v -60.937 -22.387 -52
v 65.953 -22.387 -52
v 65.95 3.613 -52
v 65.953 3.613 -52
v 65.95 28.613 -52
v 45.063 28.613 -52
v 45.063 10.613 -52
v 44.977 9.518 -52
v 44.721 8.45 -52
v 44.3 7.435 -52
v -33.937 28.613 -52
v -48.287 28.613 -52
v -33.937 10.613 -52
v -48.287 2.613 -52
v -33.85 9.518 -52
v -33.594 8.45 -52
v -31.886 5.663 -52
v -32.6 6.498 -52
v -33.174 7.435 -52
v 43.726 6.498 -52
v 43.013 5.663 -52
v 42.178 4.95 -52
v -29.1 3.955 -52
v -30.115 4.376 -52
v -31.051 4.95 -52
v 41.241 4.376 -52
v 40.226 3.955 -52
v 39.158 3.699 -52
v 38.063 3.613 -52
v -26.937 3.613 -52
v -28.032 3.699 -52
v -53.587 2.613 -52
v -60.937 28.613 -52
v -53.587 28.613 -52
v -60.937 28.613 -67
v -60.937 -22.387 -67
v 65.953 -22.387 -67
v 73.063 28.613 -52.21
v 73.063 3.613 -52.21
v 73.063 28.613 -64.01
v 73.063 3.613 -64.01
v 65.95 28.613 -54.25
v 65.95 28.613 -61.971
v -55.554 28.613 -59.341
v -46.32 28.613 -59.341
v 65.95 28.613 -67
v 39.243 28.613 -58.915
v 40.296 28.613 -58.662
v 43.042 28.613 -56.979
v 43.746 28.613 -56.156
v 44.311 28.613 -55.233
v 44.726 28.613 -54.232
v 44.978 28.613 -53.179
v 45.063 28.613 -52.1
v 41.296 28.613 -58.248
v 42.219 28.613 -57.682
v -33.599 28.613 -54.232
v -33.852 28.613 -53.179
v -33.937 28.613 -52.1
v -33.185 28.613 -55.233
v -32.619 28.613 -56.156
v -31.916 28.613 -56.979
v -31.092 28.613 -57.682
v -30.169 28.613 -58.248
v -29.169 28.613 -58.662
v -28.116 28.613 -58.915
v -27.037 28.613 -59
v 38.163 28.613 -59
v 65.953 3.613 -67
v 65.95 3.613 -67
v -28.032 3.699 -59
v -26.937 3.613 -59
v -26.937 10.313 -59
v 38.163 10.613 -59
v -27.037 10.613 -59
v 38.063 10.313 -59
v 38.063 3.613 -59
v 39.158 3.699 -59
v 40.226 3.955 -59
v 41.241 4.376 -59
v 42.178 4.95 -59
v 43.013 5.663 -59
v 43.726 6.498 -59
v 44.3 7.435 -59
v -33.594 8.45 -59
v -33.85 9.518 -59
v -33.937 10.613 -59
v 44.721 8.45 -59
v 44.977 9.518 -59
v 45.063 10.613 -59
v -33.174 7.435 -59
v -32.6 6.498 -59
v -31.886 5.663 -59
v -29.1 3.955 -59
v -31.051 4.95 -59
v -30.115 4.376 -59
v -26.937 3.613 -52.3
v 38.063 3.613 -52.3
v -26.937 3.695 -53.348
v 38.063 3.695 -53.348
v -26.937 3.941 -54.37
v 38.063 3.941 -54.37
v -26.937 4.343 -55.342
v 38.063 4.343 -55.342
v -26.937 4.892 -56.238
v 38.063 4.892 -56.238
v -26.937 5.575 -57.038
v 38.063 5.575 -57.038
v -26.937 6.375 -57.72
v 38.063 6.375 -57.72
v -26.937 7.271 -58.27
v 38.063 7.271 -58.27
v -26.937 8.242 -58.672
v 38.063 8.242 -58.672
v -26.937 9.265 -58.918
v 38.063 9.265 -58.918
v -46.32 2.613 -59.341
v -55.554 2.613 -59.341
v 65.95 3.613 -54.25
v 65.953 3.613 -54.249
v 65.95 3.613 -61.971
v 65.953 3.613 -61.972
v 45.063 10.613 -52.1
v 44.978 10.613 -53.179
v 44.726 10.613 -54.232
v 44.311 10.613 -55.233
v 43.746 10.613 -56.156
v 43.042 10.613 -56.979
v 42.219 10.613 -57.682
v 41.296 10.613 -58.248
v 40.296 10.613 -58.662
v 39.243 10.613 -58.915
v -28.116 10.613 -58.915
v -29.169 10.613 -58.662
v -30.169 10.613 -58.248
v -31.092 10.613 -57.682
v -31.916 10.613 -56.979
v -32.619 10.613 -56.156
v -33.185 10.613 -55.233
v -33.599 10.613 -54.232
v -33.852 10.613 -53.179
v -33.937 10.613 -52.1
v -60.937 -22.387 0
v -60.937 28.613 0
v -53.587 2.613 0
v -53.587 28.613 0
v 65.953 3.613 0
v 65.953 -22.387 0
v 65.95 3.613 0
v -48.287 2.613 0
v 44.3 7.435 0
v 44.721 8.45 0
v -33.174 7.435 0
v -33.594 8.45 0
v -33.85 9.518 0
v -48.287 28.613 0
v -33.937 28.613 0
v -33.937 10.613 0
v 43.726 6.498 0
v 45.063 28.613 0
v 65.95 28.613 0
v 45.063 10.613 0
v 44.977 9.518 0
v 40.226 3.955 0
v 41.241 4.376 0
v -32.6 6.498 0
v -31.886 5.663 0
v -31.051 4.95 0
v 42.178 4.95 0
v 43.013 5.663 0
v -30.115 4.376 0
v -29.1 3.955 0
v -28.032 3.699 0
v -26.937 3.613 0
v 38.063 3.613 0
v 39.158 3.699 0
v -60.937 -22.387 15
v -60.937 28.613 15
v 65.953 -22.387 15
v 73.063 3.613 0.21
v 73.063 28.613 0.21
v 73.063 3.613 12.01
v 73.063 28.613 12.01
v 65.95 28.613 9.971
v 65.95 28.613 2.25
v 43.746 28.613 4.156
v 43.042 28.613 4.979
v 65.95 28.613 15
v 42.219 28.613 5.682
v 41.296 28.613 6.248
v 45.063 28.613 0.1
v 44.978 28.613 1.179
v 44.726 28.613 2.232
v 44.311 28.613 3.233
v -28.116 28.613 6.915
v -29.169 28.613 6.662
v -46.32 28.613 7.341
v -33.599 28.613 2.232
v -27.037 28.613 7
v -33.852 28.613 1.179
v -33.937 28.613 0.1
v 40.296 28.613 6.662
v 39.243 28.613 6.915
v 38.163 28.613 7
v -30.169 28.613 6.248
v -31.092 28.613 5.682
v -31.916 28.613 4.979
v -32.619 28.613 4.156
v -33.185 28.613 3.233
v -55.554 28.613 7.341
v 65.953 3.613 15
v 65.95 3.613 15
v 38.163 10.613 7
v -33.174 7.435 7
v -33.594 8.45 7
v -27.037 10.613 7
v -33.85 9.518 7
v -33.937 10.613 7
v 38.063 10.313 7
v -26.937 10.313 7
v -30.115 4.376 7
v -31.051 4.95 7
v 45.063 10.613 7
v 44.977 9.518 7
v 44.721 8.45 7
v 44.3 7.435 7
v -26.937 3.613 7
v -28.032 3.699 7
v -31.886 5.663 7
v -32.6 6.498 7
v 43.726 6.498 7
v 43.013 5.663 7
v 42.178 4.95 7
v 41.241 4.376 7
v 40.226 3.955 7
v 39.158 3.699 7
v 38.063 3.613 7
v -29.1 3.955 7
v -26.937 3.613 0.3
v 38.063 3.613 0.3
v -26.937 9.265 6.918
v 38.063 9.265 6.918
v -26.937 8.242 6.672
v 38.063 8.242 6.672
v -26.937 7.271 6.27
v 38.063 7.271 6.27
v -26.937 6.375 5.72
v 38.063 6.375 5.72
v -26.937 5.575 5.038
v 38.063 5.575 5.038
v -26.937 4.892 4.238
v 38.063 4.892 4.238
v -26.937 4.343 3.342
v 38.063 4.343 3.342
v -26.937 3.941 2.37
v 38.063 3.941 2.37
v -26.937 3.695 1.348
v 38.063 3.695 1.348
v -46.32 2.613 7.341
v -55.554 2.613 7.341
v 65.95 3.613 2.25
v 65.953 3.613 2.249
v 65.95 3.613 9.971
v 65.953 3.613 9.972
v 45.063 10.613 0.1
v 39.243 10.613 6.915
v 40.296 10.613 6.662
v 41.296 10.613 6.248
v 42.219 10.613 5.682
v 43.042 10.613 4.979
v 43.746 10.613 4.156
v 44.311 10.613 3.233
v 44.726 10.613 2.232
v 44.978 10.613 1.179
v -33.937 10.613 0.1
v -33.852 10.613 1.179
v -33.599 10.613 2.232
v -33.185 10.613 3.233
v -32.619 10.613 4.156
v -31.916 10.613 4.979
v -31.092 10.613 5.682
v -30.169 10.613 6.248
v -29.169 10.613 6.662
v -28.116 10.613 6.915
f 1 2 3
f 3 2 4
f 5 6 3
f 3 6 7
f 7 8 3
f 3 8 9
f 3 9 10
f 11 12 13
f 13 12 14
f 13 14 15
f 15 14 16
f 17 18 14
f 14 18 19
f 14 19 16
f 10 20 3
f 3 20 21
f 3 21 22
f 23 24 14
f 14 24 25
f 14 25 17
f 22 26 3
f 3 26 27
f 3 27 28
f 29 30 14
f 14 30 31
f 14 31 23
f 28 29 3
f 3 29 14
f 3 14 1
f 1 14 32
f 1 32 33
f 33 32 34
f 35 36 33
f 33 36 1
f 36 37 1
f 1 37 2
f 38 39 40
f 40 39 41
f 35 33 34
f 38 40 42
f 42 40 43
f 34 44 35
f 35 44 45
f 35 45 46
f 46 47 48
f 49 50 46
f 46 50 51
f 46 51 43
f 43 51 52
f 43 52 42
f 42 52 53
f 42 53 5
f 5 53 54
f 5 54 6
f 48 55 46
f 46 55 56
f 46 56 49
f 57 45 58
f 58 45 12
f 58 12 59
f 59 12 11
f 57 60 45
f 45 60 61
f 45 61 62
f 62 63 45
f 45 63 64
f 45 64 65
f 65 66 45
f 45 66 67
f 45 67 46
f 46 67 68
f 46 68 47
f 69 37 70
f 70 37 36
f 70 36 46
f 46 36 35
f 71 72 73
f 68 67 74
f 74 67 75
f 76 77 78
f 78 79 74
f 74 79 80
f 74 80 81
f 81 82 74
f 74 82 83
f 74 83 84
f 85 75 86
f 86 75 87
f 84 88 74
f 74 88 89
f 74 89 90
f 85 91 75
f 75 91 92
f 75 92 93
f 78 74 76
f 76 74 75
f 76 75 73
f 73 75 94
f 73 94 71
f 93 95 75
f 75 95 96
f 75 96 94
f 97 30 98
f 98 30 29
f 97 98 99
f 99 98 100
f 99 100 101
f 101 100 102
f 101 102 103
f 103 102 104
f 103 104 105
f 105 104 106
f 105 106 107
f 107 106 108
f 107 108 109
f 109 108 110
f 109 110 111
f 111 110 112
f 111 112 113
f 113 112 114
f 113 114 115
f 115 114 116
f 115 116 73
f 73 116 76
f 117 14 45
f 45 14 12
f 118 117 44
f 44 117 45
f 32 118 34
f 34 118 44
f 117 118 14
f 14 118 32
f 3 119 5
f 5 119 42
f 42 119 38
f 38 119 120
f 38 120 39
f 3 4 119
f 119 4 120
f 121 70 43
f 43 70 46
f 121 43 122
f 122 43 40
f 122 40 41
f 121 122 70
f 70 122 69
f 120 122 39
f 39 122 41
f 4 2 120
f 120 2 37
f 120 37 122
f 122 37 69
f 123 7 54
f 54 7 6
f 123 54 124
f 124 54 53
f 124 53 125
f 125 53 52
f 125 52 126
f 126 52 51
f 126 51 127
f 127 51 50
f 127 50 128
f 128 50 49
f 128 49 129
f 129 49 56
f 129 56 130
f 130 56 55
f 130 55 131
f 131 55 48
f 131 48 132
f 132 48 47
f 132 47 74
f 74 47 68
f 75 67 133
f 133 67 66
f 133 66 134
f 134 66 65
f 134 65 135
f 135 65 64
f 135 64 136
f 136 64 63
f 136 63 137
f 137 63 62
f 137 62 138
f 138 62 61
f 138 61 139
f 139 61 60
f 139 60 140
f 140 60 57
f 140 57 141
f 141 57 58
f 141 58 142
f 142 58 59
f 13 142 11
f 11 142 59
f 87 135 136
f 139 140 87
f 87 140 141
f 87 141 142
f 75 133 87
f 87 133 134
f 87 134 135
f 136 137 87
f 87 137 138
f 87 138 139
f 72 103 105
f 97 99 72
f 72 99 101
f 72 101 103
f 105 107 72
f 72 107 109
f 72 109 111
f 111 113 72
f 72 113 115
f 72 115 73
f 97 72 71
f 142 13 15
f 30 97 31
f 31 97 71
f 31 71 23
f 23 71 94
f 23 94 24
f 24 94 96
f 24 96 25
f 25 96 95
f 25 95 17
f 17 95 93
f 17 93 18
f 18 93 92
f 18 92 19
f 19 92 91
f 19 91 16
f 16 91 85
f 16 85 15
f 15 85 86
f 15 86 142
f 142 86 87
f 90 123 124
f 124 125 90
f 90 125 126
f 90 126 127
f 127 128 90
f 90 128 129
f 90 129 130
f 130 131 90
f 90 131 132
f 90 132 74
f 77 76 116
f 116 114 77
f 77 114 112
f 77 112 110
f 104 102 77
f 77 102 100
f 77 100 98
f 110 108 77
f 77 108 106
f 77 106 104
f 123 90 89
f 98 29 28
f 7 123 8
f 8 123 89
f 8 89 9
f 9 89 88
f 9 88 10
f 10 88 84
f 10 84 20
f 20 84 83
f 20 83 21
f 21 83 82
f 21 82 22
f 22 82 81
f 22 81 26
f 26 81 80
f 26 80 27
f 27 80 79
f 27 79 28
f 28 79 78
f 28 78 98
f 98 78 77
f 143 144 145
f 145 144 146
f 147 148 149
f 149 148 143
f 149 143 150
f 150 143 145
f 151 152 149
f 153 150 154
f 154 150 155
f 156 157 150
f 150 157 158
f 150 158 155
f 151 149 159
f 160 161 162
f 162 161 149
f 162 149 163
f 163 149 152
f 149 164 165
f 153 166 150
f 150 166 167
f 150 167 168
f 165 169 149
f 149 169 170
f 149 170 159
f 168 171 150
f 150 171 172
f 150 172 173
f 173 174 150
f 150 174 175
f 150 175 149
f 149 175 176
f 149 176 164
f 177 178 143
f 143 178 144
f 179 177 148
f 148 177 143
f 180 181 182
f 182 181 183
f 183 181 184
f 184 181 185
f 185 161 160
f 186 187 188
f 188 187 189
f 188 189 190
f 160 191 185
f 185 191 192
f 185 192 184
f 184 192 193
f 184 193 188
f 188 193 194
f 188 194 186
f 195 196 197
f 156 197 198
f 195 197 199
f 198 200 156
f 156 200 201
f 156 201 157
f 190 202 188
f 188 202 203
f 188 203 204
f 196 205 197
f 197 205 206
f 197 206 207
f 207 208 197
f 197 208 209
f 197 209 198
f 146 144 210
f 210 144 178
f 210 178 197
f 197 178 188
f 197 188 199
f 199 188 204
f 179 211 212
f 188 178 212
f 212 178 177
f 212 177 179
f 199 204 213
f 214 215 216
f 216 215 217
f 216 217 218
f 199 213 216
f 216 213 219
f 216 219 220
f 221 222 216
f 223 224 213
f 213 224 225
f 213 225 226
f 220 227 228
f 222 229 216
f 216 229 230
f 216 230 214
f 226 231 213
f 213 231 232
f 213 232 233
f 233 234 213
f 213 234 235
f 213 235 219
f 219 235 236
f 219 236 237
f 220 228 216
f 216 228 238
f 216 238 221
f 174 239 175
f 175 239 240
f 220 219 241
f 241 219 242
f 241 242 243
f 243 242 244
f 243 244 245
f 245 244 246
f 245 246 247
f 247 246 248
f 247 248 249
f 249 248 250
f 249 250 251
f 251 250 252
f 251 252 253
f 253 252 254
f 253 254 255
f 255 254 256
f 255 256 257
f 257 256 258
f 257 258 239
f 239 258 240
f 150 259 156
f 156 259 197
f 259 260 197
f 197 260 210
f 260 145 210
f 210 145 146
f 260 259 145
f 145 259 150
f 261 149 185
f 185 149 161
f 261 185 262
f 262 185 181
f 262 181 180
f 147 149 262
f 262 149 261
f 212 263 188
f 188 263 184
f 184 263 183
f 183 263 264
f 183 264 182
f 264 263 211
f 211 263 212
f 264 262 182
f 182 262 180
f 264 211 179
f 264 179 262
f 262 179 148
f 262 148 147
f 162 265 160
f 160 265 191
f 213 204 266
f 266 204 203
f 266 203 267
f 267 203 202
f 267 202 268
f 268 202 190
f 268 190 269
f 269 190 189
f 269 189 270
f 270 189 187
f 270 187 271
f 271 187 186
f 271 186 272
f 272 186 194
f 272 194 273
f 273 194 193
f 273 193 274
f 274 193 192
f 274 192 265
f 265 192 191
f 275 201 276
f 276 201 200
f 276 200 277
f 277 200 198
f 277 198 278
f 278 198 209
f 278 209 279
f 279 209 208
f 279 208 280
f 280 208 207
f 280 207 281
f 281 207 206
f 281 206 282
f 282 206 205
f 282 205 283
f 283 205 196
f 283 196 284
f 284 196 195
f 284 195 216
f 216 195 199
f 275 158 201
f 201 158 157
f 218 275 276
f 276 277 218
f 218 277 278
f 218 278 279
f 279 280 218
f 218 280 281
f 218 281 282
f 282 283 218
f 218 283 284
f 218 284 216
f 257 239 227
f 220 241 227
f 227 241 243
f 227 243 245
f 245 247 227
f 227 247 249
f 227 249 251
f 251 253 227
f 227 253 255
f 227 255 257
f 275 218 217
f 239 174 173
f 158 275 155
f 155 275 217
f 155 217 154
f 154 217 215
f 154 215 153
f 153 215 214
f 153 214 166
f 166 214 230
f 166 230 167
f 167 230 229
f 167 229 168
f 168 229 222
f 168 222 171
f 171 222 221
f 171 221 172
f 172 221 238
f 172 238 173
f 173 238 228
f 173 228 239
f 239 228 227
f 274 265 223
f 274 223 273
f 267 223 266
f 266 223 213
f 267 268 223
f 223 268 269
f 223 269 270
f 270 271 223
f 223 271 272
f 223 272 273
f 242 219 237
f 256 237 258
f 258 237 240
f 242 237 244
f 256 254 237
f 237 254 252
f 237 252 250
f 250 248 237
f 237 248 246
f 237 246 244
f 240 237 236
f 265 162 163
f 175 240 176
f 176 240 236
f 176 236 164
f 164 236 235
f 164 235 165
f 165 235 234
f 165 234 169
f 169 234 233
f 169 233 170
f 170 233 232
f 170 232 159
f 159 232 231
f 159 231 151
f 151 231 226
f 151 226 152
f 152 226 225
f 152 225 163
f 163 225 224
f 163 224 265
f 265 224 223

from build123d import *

# Parameters (mm, degrees)
SKETCH1_W               = 134
SKETCH1_H               = 51
BOSS_EXTRUDE1_DEPTH     = 15
CUT_EXTRUDE6_DEPTH      = 65
CUT_EXTRUDE2_DEPTH      = 1
CUT_EXTRUDE2_DEPTH_BACK = 26
CUT_EXTRUDE4_DEPTH      = 25
SKETCH7_W               = 7.11
SKETCH7_H               = 15
CUT_EXTRUDE5_DEPTH      = 26
CUT_EXTRUDE7_DEPTH      = 18
CUT_EXTRUDE8_DEPTH      = 7


with BuildPart() as part:
    # Sketch1 → Boss-Extrude1 (new body)
    with BuildSketch(Plane.XY):
        with Locations((6.063380282, 3.112676056)):
            Rectangle(SKETCH1_W, SKETCH1_H)
    extrude(amount=BOSS_EXTRUDE1_DEPTH)

    # Sketch8 → Cut-Extrude6 (cut)
    with BuildSketch(Plane(origin=(38.063380282, 0, 0), x_dir=(0, 0, -1), z_dir=(1, 0, 0))):
        with BuildLine():
            Line((-7, 28.612676056), (0, 28.612676056))
            Line((0, 28.612676056), (0, 3.612676056))
            Line((0, 3.612676056), (-0.3, 3.612676056))
            ThreePointArc((-0.3, 3.612676056), (-5.037615434, 5.575060622), (-7, 10.312676056))
            Line((-7, 10.312676056), (-7, 28.612676056))
        make_face()
    extrude(amount=-CUT_EXTRUDE6_DEPTH, mode=Mode.SUBTRACT)

    # Sketch3 → Cut-Extrude2 (cut, two sides)
    with BuildSketch(Plane(origin=(0, 28.612676056, 0), x_dir=(1, 0, 0), z_dir=(0, 1, 0))) as cut_extrude2_sk:
        Polygon((-340.610496837, 0), (-60.936619718, 0), (-53.586619718, 0), (-55.553644461, -7.34103628), (-46.319594976, -7.34103628), (-48.286619718, 0), (-120.671545534, 270.144220847), (-554.437861933, 623.29672746), (-774.376813236, 353.152506613), align=None)
    extrude(amount=CUT_EXTRUDE2_DEPTH, mode=Mode.SUBTRACT)
    extrude(cut_extrude2_sk.sketch, amount=-CUT_EXTRUDE2_DEPTH_BACK, mode=Mode.SUBTRACT)

    # Sketch5 → Cut-Extrude4 (cut)
    with BuildSketch(Plane(origin=(0, 28.612676056, 0), x_dir=(1, 0, 0), z_dir=(0, 1, 0))):
        Polygon((65.950043732, 0), (73.063380282, 0), (73.063380282, -0.210283567), (65.950043732, -2.25), align=None)
        Polygon((65.950043732, -15), (65.950043732, -9.970567134), (73.063380282, -12.010283567), (73.063380282, -15), align=None)
    extrude(amount=-CUT_EXTRUDE4_DEPTH, mode=Mode.SUBTRACT)

    # Sketch7 → Cut-Extrude5 (cut)
    with BuildSketch(Plane.XZ.offset(22.387323944)):
        with Locations((69.508380282, 7.5)):
            Rectangle(SKETCH7_W, SKETCH7_H)
    extrude(amount=-CUT_EXTRUDE5_DEPTH, mode=Mode.SUBTRACT)

    # Sketch9 → Cut-Extrude7 (cut)
    with BuildSketch(Plane(origin=(0, 28.612676056, 0), x_dir=(1, 0, 0), z_dir=(0, 1, 0))):
        with BuildLine():
            Line((-26.936619718, -7), (-27.036619718, -7))
            ThreePointArc((-27.036619718, -7), (-31.915656508, -4.97903679), (-33.936619718, -0.1))
            Line((-33.936619718, -0.1), (-33.936619718, 0))
            Line((-33.936619718, 0), (-26.936619718, 0))
            Line((-26.936619718, 0), (-26.936619718, -7))
        make_face()
        with BuildLine():
            Line((38.063380282, -7), (38.163380282, -7))
            ThreePointArc((38.163380282, -7), (43.042417072, -4.97903679), (45.063380282, -0.1))
            Line((45.063380282, -0.1), (45.063380282, 0))
            Line((45.063380282, 0), (38.063380282, 0))
            Line((38.063380282, 0), (38.063380282, -7))
        make_face()
    extrude(amount=-CUT_EXTRUDE7_DEPTH, mode=Mode.SUBTRACT)

    # Sketch12 → Cut-Extrude8 (cut)
    with BuildSketch(Plane(origin=(0, 0, 0), x_dir=(-1, 0, 0), z_dir=(0, 0, -1))):
        with BuildLine():
            ThreePointArc((-45.063380282, 10.612676056), (-43.01312775, 5.662928588), (-38.063380282, 3.612676056))
            Line((-38.063380282, 3.612676056), (-38.063380282, 10.612676056))
            Line((-38.063380282, 10.612676056), (-45.063380282, 10.612676056))
        make_face()
        with BuildLine():
            ThreePointArc((33.936619718, 10.612676056), (31.886367187, 5.662928588), (26.936619718, 3.612676056))
            Line((26.936619718, 3.612676056), (26.936619718, 10.612676056))
            Line((26.936619718, 10.612676056), (33.936619718, 10.612676056))
        make_face()
    extrude(amount=-CUT_EXTRUDE8_DEPTH, mode=Mode.SUBTRACT)


with BuildPart() as body_2:
    # Mirror2: mirrored copy
    add(part.part.mirror(Plane(origin=(0, 0, -26), x_dir=(1, 0, 0), z_dir=(0, 0, -1))))


solid = Compound([part.part, body_2.part])
